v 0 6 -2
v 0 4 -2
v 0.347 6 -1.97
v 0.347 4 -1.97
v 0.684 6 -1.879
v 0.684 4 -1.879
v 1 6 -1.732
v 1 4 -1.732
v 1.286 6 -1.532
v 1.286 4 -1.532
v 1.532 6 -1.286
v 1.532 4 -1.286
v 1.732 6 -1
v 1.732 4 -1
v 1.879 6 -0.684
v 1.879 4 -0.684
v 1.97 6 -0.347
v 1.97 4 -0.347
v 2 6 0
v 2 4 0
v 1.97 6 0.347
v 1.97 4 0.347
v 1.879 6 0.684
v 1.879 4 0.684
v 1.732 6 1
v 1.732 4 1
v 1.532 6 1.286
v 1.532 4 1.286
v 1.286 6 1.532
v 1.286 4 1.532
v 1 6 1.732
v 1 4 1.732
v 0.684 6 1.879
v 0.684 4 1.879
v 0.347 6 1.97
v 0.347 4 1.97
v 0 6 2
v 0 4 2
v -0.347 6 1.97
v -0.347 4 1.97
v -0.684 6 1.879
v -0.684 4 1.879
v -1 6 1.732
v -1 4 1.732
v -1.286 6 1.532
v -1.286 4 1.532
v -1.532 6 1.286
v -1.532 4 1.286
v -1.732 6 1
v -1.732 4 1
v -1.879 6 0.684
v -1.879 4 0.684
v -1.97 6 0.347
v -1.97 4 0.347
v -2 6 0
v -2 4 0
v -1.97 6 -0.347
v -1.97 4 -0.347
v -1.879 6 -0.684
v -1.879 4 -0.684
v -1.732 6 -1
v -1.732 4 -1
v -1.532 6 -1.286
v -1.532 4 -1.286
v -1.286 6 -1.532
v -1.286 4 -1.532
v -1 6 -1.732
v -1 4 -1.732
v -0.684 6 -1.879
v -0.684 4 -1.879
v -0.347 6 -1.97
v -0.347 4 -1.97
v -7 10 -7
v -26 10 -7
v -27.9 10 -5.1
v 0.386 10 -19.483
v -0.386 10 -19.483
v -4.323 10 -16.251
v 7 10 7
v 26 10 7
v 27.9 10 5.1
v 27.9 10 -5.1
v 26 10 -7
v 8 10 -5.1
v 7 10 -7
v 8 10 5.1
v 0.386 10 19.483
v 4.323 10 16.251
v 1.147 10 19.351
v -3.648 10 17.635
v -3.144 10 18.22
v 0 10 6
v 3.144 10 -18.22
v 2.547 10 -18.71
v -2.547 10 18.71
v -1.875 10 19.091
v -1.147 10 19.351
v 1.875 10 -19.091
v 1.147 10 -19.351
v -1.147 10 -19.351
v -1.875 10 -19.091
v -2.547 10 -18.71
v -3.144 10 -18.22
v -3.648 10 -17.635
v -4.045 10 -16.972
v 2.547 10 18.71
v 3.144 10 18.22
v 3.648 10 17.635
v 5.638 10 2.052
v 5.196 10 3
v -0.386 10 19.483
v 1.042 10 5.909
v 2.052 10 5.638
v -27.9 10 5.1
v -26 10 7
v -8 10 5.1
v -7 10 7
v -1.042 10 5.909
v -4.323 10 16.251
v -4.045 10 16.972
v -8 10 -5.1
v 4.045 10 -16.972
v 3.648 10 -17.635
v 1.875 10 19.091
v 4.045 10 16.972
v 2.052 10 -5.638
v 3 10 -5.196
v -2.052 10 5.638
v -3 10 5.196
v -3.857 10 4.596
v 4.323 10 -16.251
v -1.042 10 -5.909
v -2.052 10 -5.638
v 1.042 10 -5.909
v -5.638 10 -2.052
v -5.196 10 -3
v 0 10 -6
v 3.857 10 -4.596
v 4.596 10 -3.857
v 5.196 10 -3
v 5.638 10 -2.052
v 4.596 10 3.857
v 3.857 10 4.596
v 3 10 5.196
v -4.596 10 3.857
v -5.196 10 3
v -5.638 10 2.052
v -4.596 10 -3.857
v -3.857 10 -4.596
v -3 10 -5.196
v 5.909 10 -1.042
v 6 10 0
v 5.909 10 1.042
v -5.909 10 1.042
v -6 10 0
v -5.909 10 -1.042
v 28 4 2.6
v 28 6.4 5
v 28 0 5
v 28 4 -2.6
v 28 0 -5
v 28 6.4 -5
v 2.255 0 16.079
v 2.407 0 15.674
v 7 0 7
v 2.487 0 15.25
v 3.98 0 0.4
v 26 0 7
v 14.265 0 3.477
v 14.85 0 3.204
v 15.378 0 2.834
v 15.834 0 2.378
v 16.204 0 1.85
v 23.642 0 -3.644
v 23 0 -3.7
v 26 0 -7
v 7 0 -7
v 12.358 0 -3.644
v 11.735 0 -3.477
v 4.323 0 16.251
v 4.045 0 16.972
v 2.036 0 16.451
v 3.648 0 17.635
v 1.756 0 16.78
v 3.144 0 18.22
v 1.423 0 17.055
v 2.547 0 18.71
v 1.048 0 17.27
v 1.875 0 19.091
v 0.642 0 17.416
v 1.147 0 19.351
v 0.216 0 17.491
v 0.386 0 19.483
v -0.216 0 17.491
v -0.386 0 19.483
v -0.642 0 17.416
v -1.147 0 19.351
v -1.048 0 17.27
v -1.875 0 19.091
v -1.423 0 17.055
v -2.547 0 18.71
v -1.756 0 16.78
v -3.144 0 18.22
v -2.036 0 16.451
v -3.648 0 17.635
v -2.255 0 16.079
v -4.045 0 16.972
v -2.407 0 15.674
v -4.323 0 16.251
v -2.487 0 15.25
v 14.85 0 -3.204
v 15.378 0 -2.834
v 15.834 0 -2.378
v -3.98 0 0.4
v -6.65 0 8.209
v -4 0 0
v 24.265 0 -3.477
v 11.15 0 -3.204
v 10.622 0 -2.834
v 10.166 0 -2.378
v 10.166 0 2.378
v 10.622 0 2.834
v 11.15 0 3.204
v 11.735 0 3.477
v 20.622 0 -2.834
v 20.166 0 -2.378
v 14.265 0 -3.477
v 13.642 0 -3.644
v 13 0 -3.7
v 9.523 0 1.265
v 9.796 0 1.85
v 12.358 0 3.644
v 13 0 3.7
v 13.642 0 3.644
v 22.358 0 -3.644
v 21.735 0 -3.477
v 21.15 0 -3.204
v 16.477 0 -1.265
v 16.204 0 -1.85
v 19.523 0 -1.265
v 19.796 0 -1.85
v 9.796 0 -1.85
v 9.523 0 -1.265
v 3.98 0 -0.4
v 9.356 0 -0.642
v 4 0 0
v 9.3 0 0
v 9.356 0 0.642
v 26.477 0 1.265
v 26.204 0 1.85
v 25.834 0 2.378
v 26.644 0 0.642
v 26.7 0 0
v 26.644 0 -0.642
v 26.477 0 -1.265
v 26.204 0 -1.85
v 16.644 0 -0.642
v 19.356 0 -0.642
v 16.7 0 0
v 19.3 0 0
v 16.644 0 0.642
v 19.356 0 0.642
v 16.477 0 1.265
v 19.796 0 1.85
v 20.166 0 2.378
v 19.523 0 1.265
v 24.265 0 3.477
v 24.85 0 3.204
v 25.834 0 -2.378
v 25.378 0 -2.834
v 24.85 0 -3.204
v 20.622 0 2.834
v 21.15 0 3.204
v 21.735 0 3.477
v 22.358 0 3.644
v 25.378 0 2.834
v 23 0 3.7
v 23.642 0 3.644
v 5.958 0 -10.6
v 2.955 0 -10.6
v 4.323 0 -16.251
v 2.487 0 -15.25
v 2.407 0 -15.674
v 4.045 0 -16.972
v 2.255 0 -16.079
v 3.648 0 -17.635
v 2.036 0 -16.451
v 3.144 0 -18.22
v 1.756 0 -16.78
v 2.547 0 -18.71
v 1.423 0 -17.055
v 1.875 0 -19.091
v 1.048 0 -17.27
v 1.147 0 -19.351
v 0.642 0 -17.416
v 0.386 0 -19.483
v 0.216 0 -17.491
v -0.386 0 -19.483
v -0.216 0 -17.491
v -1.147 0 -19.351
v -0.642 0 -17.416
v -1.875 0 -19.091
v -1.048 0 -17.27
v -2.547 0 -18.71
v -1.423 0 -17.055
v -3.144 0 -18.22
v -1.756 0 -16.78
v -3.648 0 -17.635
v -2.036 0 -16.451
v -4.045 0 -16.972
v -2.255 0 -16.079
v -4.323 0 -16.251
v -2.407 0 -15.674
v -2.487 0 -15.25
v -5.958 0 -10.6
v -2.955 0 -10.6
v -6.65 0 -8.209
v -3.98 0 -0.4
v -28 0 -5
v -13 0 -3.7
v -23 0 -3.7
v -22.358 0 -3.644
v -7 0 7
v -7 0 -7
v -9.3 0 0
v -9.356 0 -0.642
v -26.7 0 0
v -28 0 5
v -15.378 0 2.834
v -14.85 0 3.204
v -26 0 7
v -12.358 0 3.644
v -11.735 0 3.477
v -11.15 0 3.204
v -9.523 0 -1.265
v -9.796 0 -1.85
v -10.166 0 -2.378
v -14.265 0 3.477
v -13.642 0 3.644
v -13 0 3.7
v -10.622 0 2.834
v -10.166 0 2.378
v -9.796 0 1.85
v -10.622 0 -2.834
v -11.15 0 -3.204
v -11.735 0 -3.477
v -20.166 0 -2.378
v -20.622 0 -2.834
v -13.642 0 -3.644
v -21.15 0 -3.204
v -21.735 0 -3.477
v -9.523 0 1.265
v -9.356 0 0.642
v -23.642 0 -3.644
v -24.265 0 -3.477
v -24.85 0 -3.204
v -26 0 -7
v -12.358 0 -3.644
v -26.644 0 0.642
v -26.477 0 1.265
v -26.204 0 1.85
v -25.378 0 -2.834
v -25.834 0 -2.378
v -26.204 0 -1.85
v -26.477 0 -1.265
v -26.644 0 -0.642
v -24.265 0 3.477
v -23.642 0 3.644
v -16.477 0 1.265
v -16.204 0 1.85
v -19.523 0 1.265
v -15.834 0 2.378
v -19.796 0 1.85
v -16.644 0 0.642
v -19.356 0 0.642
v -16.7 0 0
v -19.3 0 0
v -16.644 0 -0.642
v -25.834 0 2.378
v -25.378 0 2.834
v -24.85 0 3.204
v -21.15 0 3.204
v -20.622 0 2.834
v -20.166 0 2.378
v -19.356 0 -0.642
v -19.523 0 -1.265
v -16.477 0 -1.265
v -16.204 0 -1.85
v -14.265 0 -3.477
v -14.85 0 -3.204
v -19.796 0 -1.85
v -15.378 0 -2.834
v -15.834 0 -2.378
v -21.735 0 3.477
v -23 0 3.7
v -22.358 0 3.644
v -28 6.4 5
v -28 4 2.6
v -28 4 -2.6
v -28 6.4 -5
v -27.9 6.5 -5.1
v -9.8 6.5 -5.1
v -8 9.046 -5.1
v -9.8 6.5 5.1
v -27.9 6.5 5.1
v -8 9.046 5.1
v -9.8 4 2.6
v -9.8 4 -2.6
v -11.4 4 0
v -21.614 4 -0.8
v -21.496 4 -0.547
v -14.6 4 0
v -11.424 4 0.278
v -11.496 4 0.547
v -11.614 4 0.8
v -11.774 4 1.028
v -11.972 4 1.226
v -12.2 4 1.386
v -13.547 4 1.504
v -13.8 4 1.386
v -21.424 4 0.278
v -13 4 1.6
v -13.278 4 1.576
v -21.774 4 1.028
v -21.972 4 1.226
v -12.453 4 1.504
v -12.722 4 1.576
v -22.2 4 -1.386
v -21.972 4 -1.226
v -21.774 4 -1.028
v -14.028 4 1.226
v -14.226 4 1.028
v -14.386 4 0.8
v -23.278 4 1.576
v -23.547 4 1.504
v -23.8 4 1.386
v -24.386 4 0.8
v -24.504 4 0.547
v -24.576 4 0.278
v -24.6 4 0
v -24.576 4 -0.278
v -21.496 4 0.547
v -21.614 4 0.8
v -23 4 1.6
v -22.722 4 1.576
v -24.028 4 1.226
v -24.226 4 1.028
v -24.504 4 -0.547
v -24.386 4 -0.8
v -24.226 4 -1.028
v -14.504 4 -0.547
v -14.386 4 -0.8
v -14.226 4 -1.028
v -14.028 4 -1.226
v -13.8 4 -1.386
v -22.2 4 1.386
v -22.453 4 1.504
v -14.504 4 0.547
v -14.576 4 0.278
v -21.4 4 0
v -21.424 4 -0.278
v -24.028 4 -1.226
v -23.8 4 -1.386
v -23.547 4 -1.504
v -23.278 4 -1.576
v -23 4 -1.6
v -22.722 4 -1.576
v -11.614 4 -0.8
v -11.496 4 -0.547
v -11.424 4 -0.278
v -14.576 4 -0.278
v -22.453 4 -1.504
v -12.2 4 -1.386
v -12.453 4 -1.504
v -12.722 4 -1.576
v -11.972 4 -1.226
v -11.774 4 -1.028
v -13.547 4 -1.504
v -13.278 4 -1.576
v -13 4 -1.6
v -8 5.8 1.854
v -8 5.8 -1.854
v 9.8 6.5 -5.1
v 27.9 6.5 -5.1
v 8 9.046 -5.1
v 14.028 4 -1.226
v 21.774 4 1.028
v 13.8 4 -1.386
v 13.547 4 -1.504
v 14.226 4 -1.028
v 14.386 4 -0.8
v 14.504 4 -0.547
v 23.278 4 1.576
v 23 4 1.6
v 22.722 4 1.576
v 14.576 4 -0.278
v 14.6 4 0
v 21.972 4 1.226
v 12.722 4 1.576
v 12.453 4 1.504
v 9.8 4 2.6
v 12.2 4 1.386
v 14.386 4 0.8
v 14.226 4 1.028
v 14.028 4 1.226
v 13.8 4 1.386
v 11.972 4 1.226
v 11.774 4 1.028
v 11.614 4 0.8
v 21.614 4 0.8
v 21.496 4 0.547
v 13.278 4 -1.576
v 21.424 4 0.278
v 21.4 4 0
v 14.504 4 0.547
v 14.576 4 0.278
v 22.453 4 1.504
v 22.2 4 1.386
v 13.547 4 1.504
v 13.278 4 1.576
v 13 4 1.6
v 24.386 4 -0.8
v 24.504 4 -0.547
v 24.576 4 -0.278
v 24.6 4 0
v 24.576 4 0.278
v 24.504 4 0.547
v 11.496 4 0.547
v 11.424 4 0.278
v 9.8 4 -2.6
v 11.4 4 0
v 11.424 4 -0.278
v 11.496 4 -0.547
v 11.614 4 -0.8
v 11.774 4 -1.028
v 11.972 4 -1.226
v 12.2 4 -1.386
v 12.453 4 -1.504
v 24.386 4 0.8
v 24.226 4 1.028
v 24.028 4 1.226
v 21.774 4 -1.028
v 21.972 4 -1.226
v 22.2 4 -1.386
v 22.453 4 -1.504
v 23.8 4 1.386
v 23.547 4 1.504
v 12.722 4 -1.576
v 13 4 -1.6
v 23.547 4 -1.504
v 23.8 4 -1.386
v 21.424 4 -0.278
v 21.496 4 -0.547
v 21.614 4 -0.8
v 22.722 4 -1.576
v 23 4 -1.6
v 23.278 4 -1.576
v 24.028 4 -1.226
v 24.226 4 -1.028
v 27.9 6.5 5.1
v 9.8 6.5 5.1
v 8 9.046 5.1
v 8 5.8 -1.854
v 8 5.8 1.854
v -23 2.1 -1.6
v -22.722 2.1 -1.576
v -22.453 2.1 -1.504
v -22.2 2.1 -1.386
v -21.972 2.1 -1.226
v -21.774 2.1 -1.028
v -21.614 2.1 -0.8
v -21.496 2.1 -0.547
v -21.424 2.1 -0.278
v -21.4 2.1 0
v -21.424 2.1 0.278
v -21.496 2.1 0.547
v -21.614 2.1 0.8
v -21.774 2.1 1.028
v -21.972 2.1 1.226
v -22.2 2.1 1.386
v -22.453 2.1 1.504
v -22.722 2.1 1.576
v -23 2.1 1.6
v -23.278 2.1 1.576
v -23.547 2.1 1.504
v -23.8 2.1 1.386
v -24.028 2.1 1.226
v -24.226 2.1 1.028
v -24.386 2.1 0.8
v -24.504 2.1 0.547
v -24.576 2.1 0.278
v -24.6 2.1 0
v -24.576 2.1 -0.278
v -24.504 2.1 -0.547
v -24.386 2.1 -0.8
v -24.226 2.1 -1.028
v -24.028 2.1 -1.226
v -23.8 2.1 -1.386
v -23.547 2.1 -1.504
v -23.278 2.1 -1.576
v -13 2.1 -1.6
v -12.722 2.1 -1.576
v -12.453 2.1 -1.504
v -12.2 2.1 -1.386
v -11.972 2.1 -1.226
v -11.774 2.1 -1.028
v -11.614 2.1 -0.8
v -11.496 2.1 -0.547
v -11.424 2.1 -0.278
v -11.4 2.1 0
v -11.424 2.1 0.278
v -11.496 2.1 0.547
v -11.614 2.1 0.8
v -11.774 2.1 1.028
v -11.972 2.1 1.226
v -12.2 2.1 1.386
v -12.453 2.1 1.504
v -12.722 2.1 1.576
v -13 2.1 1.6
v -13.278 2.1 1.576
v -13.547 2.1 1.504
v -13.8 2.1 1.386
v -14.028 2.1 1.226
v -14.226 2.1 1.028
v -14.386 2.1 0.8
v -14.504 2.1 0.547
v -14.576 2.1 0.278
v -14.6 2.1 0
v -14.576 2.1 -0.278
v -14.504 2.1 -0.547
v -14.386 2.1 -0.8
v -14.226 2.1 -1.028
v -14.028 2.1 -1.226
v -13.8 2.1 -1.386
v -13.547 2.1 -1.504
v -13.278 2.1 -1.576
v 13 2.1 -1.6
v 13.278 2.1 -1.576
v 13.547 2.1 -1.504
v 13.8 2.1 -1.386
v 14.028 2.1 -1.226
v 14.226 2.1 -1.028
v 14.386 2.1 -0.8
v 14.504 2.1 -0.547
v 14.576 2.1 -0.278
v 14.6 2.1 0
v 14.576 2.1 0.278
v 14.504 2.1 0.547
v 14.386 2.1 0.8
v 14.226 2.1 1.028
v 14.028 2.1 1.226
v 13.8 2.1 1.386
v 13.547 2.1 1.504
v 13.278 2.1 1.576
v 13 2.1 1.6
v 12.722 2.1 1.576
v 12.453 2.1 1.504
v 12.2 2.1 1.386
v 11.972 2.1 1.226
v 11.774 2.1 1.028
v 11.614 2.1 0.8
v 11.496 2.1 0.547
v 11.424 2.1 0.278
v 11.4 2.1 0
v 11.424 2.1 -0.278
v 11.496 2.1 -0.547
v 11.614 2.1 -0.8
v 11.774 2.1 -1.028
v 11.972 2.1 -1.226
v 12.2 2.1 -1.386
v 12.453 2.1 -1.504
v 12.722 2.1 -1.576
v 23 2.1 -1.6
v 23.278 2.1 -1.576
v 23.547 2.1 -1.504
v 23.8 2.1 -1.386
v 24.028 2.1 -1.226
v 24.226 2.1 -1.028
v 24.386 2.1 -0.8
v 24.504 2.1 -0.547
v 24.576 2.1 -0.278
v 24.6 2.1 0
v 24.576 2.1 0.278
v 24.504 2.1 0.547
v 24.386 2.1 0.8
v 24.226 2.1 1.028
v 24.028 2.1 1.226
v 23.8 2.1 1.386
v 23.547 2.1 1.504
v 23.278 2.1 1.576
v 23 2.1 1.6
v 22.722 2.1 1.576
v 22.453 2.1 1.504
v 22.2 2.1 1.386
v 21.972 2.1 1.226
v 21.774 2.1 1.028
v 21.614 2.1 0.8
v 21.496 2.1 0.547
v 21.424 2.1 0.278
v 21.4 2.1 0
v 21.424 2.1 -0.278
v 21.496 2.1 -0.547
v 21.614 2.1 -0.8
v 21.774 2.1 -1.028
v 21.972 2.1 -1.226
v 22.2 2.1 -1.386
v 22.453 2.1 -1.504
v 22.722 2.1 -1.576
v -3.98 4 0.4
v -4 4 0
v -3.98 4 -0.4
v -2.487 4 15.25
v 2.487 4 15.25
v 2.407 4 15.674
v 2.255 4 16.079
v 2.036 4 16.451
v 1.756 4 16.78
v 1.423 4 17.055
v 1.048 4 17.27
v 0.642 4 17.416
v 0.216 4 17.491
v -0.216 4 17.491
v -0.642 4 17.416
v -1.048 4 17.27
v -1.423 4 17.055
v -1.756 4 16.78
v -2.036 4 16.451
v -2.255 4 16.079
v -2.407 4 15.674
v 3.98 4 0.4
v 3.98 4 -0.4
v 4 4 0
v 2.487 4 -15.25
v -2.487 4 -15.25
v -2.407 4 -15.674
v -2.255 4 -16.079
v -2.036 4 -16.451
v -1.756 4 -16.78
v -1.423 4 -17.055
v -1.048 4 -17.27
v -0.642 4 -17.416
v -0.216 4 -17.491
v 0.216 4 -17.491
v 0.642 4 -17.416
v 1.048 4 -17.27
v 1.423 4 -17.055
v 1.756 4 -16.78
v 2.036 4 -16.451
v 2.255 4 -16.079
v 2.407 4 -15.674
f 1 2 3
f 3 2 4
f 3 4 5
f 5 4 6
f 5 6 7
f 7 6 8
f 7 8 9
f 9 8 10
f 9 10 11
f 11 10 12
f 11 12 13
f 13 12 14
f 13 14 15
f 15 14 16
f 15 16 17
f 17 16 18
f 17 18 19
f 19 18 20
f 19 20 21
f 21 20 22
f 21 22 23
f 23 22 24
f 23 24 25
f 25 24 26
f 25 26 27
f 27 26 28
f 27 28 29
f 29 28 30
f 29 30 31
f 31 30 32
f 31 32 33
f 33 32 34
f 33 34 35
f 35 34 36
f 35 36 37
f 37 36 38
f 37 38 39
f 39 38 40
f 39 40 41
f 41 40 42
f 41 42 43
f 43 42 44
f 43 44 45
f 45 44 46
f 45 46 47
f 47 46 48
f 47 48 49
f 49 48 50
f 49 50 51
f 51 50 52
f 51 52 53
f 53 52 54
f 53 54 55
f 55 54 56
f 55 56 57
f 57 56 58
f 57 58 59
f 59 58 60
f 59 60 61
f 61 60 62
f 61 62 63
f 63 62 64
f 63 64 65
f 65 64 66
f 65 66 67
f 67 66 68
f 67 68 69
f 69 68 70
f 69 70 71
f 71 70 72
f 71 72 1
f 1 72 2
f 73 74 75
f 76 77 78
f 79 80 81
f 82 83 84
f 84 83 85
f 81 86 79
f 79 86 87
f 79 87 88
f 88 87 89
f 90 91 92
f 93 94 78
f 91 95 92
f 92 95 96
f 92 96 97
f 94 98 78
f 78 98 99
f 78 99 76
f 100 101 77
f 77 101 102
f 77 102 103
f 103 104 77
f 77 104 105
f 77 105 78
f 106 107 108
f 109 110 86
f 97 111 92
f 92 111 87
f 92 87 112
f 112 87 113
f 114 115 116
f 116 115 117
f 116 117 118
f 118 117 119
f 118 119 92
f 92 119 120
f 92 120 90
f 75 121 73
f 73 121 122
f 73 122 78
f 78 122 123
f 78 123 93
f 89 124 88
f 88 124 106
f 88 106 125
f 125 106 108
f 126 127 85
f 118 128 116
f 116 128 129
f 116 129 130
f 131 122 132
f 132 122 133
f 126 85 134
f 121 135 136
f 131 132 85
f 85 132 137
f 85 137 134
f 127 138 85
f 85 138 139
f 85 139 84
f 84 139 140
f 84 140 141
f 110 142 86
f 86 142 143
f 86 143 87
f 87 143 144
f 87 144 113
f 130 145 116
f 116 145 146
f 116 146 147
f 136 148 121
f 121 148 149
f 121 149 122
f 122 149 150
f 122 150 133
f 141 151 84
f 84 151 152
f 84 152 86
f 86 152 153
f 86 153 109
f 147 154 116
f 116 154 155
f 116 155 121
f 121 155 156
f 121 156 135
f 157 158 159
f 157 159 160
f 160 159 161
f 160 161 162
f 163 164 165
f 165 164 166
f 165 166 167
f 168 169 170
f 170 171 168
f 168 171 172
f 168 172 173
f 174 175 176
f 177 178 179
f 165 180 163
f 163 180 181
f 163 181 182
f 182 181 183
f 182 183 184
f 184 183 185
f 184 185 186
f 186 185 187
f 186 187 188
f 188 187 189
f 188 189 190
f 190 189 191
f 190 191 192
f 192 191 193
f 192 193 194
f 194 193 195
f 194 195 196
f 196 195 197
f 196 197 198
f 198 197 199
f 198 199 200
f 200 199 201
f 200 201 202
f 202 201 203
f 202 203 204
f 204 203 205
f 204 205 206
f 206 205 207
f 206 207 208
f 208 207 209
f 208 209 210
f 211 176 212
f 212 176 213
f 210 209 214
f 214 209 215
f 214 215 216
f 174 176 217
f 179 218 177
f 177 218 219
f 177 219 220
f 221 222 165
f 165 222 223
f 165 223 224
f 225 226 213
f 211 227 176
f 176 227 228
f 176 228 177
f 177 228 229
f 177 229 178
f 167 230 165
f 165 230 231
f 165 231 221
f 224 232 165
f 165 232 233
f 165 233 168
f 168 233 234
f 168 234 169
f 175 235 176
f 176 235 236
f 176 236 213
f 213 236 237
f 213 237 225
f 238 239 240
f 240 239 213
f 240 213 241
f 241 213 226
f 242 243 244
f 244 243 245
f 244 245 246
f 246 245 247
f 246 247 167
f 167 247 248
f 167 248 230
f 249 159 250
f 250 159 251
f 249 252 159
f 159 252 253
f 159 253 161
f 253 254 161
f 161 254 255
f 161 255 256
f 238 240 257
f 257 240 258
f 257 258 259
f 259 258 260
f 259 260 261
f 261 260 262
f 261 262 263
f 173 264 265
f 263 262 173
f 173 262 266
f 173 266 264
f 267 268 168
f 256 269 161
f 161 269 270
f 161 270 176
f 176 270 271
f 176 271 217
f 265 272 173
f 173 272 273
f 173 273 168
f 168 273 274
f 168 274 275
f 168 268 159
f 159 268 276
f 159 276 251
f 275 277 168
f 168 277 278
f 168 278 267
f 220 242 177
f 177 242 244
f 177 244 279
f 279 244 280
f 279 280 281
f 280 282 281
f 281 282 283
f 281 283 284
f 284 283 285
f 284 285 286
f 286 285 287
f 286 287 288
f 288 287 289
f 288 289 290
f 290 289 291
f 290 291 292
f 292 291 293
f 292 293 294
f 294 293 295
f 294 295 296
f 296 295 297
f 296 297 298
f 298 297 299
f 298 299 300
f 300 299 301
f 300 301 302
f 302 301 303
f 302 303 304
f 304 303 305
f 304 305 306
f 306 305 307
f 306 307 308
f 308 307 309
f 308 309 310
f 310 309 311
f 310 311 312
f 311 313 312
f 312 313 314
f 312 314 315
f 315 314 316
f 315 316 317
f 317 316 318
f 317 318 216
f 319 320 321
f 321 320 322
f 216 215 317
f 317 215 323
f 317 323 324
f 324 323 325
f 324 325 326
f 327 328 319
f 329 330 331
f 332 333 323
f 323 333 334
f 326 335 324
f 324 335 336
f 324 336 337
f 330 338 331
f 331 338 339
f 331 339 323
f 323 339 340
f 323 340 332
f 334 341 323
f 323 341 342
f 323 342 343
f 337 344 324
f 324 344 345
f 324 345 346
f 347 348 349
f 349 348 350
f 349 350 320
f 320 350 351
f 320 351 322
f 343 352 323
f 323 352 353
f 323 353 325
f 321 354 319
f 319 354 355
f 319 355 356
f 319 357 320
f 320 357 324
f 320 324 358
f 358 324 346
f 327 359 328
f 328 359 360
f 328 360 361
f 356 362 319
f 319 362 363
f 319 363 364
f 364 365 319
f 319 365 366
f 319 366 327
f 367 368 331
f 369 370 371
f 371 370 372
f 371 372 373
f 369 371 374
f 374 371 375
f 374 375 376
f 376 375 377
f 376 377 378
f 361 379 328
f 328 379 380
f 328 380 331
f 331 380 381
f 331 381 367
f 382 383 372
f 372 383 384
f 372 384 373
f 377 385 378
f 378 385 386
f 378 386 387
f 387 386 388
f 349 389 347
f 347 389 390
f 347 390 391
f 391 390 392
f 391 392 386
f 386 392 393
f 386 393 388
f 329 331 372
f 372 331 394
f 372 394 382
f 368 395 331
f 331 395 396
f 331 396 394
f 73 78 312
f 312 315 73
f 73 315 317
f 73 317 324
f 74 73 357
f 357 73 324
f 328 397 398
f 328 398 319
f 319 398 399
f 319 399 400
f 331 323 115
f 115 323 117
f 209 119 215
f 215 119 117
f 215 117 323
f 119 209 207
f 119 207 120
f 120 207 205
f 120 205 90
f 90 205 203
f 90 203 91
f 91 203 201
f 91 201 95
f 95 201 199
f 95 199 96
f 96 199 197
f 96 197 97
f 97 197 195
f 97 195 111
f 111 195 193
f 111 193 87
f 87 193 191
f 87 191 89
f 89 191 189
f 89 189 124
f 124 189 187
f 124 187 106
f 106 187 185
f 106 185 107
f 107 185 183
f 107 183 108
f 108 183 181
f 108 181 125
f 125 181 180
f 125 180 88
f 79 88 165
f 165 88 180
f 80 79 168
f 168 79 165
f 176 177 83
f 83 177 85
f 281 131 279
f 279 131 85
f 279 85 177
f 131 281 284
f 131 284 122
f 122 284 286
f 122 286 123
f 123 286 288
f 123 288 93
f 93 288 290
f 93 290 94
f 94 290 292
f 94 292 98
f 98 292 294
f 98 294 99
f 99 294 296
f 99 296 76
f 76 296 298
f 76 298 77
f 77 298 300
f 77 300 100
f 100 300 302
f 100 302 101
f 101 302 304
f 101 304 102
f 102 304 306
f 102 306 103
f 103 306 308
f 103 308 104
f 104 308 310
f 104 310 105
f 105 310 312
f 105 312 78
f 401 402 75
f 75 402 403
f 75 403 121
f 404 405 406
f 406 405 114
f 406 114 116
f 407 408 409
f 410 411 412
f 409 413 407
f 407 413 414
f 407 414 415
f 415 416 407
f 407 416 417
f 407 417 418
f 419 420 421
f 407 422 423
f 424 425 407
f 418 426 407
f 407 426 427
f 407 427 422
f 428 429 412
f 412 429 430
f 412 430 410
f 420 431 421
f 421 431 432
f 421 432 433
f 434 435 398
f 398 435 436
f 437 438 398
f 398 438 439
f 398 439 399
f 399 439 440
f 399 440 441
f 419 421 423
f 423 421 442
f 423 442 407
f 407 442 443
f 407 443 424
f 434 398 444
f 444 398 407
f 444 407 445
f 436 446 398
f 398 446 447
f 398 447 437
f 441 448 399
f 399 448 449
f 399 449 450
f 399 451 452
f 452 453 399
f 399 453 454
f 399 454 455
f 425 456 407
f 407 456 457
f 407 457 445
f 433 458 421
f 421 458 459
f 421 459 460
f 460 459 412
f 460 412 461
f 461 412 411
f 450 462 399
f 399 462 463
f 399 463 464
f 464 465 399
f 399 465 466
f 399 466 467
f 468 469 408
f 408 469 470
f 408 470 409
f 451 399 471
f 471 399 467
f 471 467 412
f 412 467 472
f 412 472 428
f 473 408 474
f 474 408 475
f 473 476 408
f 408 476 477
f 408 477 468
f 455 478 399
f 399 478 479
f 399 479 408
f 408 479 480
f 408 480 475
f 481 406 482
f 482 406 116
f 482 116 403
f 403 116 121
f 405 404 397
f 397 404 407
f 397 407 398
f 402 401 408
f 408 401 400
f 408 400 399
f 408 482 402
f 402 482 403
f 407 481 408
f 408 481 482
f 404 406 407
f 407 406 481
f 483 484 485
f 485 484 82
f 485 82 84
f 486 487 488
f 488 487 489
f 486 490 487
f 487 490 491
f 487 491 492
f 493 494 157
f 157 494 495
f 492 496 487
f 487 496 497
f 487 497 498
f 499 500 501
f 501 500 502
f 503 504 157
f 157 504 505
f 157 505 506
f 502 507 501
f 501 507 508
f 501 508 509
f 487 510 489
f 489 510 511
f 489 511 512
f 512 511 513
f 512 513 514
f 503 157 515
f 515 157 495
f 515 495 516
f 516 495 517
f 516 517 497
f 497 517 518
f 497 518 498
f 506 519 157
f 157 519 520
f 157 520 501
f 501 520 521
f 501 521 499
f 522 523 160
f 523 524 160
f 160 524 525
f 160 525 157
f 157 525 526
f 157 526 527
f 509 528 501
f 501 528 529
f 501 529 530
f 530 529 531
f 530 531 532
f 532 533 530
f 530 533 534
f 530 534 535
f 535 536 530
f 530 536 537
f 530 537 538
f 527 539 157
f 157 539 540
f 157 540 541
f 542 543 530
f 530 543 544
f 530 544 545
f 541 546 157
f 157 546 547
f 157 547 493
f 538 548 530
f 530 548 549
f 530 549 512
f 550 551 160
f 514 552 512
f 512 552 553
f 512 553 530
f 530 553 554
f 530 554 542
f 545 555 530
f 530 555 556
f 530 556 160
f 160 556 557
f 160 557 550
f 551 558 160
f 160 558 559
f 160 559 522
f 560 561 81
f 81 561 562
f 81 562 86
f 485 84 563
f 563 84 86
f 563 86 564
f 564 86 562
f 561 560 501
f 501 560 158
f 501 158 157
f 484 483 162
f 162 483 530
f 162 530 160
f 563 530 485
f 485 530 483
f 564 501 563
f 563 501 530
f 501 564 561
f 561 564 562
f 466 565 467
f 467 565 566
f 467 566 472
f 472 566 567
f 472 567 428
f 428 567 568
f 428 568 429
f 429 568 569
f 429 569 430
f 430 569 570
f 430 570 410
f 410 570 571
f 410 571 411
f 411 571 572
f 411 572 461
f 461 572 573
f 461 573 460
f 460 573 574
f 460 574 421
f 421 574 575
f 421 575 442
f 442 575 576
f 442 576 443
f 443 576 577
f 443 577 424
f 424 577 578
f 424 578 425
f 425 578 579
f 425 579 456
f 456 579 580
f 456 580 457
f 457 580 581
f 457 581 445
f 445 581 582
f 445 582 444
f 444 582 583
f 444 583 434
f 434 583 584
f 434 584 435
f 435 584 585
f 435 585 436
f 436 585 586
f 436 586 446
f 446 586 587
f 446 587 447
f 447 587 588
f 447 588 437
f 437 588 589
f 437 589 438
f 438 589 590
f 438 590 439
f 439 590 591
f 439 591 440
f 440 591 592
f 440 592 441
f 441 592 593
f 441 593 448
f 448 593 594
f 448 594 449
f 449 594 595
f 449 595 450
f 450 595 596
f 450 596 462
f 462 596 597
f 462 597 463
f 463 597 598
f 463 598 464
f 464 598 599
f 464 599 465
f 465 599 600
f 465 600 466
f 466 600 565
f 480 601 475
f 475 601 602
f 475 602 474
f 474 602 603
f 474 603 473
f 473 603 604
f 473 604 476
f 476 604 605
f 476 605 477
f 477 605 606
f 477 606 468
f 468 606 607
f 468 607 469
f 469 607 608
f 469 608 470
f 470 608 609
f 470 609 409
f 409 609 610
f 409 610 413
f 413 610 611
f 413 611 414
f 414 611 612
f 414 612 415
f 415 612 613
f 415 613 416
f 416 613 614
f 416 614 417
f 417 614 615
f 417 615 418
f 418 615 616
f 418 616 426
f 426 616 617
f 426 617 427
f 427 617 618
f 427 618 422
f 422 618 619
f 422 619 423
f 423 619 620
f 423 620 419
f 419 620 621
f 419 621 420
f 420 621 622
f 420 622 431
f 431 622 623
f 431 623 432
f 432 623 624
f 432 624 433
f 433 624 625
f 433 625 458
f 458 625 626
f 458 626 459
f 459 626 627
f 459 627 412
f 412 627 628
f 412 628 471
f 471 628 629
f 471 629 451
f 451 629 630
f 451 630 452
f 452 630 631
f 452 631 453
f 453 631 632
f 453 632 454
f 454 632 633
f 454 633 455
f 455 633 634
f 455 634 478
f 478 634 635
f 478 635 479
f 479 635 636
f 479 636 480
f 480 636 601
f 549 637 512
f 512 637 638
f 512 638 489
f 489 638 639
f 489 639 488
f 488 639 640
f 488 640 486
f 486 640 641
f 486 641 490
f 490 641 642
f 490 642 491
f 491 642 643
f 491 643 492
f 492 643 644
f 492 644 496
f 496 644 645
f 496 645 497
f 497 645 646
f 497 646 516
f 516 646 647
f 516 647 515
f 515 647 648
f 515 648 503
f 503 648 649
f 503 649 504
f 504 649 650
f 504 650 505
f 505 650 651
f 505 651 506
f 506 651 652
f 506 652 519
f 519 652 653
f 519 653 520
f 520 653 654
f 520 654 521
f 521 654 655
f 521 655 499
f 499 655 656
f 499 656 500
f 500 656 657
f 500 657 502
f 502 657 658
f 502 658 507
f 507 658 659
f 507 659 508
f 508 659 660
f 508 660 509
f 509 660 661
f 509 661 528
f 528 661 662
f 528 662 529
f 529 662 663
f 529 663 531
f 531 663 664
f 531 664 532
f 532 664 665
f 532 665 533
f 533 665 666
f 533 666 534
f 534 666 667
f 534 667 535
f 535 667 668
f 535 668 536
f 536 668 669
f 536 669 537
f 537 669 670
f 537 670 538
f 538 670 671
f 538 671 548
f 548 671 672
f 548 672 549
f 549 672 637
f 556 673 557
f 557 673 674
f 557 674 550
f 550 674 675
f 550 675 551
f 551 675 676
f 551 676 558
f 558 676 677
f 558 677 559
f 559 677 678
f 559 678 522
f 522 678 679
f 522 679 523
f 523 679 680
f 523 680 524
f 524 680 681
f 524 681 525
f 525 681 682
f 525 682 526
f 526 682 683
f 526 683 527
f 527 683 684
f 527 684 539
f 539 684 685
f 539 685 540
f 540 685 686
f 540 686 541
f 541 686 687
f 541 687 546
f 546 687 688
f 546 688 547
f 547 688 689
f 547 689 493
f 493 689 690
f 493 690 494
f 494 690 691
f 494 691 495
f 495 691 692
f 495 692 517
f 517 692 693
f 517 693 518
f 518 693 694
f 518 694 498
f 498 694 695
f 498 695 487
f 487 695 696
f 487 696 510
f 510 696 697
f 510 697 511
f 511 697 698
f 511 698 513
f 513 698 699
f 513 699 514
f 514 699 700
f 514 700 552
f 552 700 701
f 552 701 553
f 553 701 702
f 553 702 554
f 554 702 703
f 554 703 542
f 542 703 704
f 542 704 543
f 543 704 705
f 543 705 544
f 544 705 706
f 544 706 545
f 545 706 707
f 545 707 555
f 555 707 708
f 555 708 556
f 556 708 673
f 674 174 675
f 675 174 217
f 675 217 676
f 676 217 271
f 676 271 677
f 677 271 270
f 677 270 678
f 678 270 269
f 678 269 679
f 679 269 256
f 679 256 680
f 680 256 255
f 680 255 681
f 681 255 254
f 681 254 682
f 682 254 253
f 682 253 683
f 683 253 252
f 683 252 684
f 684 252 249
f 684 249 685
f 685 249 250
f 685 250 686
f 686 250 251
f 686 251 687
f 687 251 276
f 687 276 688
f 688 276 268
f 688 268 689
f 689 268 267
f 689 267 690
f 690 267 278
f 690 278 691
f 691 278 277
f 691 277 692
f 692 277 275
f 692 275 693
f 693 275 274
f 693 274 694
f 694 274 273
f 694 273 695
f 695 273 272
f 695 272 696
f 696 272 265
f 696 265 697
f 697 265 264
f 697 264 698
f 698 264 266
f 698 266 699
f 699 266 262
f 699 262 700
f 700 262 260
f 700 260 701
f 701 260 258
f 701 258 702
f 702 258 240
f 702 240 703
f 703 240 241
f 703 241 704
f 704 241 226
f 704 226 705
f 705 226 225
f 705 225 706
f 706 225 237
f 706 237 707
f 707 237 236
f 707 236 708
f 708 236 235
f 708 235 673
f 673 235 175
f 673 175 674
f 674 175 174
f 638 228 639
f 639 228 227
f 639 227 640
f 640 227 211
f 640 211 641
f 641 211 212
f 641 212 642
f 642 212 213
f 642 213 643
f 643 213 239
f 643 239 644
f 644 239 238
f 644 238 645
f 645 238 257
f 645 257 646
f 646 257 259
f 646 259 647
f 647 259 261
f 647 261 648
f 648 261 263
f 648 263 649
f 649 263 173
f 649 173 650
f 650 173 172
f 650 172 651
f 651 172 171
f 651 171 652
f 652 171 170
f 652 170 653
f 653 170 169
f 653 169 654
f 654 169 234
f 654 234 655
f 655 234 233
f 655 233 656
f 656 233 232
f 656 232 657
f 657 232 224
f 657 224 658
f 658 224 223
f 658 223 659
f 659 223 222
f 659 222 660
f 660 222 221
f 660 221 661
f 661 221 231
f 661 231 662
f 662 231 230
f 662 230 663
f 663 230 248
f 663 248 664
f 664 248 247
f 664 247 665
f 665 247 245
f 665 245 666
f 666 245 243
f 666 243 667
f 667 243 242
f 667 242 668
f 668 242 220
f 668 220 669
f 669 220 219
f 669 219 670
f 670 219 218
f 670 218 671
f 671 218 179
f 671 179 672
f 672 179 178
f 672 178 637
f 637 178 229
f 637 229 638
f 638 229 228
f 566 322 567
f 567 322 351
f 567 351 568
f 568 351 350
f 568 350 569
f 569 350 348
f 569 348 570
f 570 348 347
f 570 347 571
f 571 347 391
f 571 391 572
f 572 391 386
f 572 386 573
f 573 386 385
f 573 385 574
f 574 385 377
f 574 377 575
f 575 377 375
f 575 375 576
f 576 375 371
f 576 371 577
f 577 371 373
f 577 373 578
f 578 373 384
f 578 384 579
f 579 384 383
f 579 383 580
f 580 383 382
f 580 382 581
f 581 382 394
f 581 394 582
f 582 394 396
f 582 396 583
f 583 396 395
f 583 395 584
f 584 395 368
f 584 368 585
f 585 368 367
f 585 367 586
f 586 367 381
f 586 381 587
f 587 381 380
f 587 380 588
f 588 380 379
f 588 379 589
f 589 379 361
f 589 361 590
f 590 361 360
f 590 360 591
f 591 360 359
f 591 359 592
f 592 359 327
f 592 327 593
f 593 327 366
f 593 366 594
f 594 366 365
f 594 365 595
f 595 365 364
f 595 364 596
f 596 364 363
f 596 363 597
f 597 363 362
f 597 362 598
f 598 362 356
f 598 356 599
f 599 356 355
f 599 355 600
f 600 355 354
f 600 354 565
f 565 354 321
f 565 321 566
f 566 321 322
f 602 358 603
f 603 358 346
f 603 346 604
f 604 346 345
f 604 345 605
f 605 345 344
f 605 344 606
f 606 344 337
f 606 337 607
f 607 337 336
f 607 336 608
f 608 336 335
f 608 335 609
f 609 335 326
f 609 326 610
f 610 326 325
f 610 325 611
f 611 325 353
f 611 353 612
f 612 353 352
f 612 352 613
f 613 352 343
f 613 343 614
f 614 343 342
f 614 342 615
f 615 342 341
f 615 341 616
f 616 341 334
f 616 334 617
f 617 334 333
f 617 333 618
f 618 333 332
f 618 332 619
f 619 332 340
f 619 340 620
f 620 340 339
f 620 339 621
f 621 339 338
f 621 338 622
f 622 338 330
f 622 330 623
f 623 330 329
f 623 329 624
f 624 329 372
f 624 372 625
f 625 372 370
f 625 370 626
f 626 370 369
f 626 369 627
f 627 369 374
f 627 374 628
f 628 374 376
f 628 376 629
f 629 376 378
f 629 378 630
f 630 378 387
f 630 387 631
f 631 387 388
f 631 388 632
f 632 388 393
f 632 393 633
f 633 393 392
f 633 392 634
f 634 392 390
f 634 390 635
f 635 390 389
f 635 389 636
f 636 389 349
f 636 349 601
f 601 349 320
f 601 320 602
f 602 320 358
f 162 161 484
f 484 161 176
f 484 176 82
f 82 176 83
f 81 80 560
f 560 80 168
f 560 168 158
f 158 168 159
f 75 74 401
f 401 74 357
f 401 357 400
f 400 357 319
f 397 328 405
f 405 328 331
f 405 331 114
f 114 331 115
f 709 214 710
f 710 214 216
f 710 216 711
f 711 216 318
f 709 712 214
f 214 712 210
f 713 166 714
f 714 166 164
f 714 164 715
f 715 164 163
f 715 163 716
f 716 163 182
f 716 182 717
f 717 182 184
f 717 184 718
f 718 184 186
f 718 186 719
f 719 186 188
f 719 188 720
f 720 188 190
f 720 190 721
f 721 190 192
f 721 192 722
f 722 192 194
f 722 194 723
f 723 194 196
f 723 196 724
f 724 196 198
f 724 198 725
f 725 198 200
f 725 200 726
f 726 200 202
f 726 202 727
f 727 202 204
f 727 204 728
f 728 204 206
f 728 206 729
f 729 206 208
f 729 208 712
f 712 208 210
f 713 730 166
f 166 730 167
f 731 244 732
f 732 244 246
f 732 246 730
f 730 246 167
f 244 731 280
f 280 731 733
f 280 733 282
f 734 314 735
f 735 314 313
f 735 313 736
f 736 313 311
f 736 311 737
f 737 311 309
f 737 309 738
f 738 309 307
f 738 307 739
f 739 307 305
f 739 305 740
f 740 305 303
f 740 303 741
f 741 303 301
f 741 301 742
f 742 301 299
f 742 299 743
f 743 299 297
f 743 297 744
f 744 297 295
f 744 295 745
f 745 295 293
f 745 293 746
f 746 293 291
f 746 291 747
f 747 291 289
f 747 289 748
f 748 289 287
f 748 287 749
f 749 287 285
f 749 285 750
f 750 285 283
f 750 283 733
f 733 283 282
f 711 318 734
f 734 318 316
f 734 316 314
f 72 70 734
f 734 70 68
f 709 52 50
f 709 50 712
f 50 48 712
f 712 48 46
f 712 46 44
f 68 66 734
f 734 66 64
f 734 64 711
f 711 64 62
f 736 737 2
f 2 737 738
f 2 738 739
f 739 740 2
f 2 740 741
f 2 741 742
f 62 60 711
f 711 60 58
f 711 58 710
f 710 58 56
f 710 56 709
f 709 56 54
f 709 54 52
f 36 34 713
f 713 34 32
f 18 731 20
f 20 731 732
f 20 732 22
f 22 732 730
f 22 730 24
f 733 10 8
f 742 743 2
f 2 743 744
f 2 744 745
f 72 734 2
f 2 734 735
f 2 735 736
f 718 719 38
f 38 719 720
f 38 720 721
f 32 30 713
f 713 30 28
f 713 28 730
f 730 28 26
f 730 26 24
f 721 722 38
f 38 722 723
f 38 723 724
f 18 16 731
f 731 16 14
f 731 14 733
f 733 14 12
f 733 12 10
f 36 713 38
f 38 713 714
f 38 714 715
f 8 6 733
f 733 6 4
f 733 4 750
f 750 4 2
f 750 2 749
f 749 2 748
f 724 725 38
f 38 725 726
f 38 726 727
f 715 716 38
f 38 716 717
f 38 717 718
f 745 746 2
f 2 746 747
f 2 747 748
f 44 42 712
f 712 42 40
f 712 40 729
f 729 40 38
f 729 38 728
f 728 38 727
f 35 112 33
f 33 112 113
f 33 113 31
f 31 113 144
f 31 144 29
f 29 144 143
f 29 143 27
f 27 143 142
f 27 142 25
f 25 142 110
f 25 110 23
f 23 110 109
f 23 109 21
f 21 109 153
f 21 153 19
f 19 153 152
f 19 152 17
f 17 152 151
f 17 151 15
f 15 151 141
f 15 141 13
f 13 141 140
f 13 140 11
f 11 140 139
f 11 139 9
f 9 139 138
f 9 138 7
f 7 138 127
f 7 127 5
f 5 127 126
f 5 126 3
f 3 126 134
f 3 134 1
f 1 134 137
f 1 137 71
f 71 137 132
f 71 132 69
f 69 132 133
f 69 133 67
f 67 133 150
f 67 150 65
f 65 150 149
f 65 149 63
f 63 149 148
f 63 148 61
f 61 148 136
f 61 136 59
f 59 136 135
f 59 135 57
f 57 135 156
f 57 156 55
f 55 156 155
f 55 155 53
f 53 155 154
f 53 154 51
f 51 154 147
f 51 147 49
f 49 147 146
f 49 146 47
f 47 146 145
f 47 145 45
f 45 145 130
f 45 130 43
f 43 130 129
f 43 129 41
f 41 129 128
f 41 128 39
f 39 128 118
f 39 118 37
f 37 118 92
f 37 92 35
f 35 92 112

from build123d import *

# Parameters (mm, degrees)
ESQUISSE1_R                  = 2
BOSS_EXTRU_1_DEPTH           = 10
ESQUISSE2_W                  = 10.2
ESQUISSE2_H                  = 6
ENL_V_MAT_EXTRU_1_DEPTH      = 20
CHANFREIN1_SIZE              = 2.5
CHANFREIN2_SIZE              = 1.8
CHANFREIN1_OF_SYM_TRIE1_SIZE = 2.5
CHANFREIN2_OF_SYM_TRIE1_SIZE = 1.8
ESQUISSE5_R                  = 1.6
ENL_V_MAT_EXTRU_4_DEPTH      = 7
CHANFREIN4_SIZE              = 2.1
CHANFREIN5_SIZE              = 2
ENL_V_MAT_EXTRU_5_DEPTH      = 4
CHANFREIN6_SIZE              = 4


with BuildPart() as part:
    # Esquisse1 → Boss.-Extru.1 (new body)
    with BuildSketch(Plane(origin=(0, 0, 0), x_dir=(1, 0, 0), z_dir=(0, 1, 0))):
        with BuildLine():
            Line((7, 7), (28, 7))
            Line((28, 7), (28, -7))
            Line((28, -7), (7, -7))
            Line((7, -7), (4.322606063, -16.251030305))
            ThreePointArc((4.322606063, -16.251030305), (0, -19.5), (-4.322606063, -16.251030305))
            Line((-4.322606063, -16.251030305), (-7, -7))
            Line((-7, -7), (-28, -7))
            Line((-28, -7), (-28, 7))
            Line((-28, 7), (-7, 7))
            Line((-7, 7), (-4.322606063, 16.251030305))
            ThreePointArc((-4.322606063, 16.251030305), (0, 19.5), (4.322606063, 16.251030305))
            Line((4.322606063, 16.251030305), (7, 7))
        make_face()
        with Locations(Location((0, 0, 0), (0, 0, 270))):
            Circle(ESQUISSE1_R, mode=Mode.SUBTRACT)
    extrude(amount=BOSS_EXTRU_1_DEPTH)

    # Esquisse2 → Enlèv. mat.-Extru.1 (cut)
    with BuildSketch(Plane.ZY.offset(28)):
        with Locations((0, 7)):
            Rectangle(ESQUISSE2_W, ESQUISSE2_H)
    enl_v_mat_extru_1 = extrude(amount=-ENL_V_MAT_EXTRU_1_DEPTH, mode=Mode.SUBTRACT)

    # Chanfrein1
    chanfrein1_edges = [part.edges().sort_by_distance(p)[0] for p in [
        (-18, 4, -5.1),
        (-18, 4, 5.1),
    ]]
    chamfer(chanfrein1_edges, length=CHANFREIN1_SIZE)

    # Chanfrein2
    chanfrein2_edges = [part.edges().sort_by_distance(p)[0] for p in [
        (-8, 4, 0),
        (-8, 5.25, -3.85),
        (-8, 5.25, 3.85),
    ]]
    chamfer(chanfrein2_edges, length=CHANFREIN2_SIZE)

    # Symétrie1: Enlèv. mat.-Extru.1 across plane
    add(enl_v_mat_extru_1.mirror(Plane(origin=(0, 0, 0), x_dir=(0, 0, 1), z_dir=(1, 0, 0))), mode=Mode.SUBTRACT)

    # Chanfrein1 of Symétrie1
    chanfrein1_of_sym_trie1_edges = [part.edges().sort_by_distance(p)[0] for p in [
        (18, 4, -5.1),
        (18, 4, 5.1),
    ]]
    chamfer(chanfrein1_of_sym_trie1_edges, length=CHANFREIN1_OF_SYM_TRIE1_SIZE)

    # Chanfrein2 of Symétrie1
    chanfrein2_of_sym_trie1_edges = [part.edges().sort_by_distance(p)[0] for p in [
        (8, 4, 0),
        (8, 5.25, -3.85),
        (8, 5.25, 3.85),
    ]]
    chamfer(chanfrein2_of_sym_trie1_edges, length=CHANFREIN2_OF_SYM_TRIE1_SIZE)

    # Esquisse5 → Enlèv. mat.-Extru.4 (cut)
    with BuildSketch(Plane.XZ):
        with Locations(Location((-23, 0, 0), (0, 0, 270))):
            Circle(ESQUISSE5_R)
        with Locations(Location((-13, 0, 0), (0, 0, 270))):
            Circle(ESQUISSE5_R)
        with Locations(Location((13, 0, 0), (0, 0, 270))):
            Circle(ESQUISSE5_R)
        with Locations(Location((23, 0, 0), (0, 0, 270))):
            Circle(ESQUISSE5_R)
    extrude(amount=-ENL_V_MAT_EXTRU_4_DEPTH, mode=Mode.SUBTRACT)

    # Chanfrein4
    chanfrein4_edges = [part.edges().sort_by_distance(p)[0] for p in [
        (-23, 0, 1.6),
        (-13, 0, 1.6),
        (13, 0, 1.6),
        (23, 0, 1.6),
    ]]
    chamfer(chanfrein4_edges, length=CHANFREIN4_SIZE)

    # Chanfrein5
    chanfrein5_edges = [part.edges().sort_by_distance(p)[0] for p in [
        (28, 5, -7),
        (28, 5, 7),
        (-28, 5, -7),
        (-28, 5, 7),
    ]]
    chamfer(chanfrein5_edges, length=CHANFREIN5_SIZE)

    # Esquisse6 → Enlèv. mat.-Extru.5 (cut)
    with BuildSketch(Plane.XZ):
        with BuildLine():
            Line((-3.979949748, -0.4), (-2.487468593, -15.25))
            ThreePointArc((-2.487468593, -15.25), (0, -17.5), (2.487468593, -15.25))
            Line((2.487468593, -15.25), (3.979949748, -0.4))
            ThreePointArc((3.979949748, -0.4), (4, 0), (3.979949748, 0.4))
            Line((3.979949748, 0.4), (2.487468593, 15.25))
            ThreePointArc((2.487468593, 15.25), (0, 17.5), (-2.487468593, 15.25))
            Line((-2.487468593, 15.25), (-3.979949748, 0.4))
            ThreePointArc((-3.979949748, 0.4), (-4, 0), (-3.979949748, -0.4))
        make_face()
    extrude(amount=-ENL_V_MAT_EXTRU_5_DEPTH, mode=Mode.SUBTRACT)

    # Chanfrein6
    chanfrein6_edges = [part.edges().sort_by_distance(p)[0] for p in [
        (0, 10, -2),
    ]]
    chamfer(chanfrein6_edges, length=CHANFREIN6_SIZE)


solid = part.part
